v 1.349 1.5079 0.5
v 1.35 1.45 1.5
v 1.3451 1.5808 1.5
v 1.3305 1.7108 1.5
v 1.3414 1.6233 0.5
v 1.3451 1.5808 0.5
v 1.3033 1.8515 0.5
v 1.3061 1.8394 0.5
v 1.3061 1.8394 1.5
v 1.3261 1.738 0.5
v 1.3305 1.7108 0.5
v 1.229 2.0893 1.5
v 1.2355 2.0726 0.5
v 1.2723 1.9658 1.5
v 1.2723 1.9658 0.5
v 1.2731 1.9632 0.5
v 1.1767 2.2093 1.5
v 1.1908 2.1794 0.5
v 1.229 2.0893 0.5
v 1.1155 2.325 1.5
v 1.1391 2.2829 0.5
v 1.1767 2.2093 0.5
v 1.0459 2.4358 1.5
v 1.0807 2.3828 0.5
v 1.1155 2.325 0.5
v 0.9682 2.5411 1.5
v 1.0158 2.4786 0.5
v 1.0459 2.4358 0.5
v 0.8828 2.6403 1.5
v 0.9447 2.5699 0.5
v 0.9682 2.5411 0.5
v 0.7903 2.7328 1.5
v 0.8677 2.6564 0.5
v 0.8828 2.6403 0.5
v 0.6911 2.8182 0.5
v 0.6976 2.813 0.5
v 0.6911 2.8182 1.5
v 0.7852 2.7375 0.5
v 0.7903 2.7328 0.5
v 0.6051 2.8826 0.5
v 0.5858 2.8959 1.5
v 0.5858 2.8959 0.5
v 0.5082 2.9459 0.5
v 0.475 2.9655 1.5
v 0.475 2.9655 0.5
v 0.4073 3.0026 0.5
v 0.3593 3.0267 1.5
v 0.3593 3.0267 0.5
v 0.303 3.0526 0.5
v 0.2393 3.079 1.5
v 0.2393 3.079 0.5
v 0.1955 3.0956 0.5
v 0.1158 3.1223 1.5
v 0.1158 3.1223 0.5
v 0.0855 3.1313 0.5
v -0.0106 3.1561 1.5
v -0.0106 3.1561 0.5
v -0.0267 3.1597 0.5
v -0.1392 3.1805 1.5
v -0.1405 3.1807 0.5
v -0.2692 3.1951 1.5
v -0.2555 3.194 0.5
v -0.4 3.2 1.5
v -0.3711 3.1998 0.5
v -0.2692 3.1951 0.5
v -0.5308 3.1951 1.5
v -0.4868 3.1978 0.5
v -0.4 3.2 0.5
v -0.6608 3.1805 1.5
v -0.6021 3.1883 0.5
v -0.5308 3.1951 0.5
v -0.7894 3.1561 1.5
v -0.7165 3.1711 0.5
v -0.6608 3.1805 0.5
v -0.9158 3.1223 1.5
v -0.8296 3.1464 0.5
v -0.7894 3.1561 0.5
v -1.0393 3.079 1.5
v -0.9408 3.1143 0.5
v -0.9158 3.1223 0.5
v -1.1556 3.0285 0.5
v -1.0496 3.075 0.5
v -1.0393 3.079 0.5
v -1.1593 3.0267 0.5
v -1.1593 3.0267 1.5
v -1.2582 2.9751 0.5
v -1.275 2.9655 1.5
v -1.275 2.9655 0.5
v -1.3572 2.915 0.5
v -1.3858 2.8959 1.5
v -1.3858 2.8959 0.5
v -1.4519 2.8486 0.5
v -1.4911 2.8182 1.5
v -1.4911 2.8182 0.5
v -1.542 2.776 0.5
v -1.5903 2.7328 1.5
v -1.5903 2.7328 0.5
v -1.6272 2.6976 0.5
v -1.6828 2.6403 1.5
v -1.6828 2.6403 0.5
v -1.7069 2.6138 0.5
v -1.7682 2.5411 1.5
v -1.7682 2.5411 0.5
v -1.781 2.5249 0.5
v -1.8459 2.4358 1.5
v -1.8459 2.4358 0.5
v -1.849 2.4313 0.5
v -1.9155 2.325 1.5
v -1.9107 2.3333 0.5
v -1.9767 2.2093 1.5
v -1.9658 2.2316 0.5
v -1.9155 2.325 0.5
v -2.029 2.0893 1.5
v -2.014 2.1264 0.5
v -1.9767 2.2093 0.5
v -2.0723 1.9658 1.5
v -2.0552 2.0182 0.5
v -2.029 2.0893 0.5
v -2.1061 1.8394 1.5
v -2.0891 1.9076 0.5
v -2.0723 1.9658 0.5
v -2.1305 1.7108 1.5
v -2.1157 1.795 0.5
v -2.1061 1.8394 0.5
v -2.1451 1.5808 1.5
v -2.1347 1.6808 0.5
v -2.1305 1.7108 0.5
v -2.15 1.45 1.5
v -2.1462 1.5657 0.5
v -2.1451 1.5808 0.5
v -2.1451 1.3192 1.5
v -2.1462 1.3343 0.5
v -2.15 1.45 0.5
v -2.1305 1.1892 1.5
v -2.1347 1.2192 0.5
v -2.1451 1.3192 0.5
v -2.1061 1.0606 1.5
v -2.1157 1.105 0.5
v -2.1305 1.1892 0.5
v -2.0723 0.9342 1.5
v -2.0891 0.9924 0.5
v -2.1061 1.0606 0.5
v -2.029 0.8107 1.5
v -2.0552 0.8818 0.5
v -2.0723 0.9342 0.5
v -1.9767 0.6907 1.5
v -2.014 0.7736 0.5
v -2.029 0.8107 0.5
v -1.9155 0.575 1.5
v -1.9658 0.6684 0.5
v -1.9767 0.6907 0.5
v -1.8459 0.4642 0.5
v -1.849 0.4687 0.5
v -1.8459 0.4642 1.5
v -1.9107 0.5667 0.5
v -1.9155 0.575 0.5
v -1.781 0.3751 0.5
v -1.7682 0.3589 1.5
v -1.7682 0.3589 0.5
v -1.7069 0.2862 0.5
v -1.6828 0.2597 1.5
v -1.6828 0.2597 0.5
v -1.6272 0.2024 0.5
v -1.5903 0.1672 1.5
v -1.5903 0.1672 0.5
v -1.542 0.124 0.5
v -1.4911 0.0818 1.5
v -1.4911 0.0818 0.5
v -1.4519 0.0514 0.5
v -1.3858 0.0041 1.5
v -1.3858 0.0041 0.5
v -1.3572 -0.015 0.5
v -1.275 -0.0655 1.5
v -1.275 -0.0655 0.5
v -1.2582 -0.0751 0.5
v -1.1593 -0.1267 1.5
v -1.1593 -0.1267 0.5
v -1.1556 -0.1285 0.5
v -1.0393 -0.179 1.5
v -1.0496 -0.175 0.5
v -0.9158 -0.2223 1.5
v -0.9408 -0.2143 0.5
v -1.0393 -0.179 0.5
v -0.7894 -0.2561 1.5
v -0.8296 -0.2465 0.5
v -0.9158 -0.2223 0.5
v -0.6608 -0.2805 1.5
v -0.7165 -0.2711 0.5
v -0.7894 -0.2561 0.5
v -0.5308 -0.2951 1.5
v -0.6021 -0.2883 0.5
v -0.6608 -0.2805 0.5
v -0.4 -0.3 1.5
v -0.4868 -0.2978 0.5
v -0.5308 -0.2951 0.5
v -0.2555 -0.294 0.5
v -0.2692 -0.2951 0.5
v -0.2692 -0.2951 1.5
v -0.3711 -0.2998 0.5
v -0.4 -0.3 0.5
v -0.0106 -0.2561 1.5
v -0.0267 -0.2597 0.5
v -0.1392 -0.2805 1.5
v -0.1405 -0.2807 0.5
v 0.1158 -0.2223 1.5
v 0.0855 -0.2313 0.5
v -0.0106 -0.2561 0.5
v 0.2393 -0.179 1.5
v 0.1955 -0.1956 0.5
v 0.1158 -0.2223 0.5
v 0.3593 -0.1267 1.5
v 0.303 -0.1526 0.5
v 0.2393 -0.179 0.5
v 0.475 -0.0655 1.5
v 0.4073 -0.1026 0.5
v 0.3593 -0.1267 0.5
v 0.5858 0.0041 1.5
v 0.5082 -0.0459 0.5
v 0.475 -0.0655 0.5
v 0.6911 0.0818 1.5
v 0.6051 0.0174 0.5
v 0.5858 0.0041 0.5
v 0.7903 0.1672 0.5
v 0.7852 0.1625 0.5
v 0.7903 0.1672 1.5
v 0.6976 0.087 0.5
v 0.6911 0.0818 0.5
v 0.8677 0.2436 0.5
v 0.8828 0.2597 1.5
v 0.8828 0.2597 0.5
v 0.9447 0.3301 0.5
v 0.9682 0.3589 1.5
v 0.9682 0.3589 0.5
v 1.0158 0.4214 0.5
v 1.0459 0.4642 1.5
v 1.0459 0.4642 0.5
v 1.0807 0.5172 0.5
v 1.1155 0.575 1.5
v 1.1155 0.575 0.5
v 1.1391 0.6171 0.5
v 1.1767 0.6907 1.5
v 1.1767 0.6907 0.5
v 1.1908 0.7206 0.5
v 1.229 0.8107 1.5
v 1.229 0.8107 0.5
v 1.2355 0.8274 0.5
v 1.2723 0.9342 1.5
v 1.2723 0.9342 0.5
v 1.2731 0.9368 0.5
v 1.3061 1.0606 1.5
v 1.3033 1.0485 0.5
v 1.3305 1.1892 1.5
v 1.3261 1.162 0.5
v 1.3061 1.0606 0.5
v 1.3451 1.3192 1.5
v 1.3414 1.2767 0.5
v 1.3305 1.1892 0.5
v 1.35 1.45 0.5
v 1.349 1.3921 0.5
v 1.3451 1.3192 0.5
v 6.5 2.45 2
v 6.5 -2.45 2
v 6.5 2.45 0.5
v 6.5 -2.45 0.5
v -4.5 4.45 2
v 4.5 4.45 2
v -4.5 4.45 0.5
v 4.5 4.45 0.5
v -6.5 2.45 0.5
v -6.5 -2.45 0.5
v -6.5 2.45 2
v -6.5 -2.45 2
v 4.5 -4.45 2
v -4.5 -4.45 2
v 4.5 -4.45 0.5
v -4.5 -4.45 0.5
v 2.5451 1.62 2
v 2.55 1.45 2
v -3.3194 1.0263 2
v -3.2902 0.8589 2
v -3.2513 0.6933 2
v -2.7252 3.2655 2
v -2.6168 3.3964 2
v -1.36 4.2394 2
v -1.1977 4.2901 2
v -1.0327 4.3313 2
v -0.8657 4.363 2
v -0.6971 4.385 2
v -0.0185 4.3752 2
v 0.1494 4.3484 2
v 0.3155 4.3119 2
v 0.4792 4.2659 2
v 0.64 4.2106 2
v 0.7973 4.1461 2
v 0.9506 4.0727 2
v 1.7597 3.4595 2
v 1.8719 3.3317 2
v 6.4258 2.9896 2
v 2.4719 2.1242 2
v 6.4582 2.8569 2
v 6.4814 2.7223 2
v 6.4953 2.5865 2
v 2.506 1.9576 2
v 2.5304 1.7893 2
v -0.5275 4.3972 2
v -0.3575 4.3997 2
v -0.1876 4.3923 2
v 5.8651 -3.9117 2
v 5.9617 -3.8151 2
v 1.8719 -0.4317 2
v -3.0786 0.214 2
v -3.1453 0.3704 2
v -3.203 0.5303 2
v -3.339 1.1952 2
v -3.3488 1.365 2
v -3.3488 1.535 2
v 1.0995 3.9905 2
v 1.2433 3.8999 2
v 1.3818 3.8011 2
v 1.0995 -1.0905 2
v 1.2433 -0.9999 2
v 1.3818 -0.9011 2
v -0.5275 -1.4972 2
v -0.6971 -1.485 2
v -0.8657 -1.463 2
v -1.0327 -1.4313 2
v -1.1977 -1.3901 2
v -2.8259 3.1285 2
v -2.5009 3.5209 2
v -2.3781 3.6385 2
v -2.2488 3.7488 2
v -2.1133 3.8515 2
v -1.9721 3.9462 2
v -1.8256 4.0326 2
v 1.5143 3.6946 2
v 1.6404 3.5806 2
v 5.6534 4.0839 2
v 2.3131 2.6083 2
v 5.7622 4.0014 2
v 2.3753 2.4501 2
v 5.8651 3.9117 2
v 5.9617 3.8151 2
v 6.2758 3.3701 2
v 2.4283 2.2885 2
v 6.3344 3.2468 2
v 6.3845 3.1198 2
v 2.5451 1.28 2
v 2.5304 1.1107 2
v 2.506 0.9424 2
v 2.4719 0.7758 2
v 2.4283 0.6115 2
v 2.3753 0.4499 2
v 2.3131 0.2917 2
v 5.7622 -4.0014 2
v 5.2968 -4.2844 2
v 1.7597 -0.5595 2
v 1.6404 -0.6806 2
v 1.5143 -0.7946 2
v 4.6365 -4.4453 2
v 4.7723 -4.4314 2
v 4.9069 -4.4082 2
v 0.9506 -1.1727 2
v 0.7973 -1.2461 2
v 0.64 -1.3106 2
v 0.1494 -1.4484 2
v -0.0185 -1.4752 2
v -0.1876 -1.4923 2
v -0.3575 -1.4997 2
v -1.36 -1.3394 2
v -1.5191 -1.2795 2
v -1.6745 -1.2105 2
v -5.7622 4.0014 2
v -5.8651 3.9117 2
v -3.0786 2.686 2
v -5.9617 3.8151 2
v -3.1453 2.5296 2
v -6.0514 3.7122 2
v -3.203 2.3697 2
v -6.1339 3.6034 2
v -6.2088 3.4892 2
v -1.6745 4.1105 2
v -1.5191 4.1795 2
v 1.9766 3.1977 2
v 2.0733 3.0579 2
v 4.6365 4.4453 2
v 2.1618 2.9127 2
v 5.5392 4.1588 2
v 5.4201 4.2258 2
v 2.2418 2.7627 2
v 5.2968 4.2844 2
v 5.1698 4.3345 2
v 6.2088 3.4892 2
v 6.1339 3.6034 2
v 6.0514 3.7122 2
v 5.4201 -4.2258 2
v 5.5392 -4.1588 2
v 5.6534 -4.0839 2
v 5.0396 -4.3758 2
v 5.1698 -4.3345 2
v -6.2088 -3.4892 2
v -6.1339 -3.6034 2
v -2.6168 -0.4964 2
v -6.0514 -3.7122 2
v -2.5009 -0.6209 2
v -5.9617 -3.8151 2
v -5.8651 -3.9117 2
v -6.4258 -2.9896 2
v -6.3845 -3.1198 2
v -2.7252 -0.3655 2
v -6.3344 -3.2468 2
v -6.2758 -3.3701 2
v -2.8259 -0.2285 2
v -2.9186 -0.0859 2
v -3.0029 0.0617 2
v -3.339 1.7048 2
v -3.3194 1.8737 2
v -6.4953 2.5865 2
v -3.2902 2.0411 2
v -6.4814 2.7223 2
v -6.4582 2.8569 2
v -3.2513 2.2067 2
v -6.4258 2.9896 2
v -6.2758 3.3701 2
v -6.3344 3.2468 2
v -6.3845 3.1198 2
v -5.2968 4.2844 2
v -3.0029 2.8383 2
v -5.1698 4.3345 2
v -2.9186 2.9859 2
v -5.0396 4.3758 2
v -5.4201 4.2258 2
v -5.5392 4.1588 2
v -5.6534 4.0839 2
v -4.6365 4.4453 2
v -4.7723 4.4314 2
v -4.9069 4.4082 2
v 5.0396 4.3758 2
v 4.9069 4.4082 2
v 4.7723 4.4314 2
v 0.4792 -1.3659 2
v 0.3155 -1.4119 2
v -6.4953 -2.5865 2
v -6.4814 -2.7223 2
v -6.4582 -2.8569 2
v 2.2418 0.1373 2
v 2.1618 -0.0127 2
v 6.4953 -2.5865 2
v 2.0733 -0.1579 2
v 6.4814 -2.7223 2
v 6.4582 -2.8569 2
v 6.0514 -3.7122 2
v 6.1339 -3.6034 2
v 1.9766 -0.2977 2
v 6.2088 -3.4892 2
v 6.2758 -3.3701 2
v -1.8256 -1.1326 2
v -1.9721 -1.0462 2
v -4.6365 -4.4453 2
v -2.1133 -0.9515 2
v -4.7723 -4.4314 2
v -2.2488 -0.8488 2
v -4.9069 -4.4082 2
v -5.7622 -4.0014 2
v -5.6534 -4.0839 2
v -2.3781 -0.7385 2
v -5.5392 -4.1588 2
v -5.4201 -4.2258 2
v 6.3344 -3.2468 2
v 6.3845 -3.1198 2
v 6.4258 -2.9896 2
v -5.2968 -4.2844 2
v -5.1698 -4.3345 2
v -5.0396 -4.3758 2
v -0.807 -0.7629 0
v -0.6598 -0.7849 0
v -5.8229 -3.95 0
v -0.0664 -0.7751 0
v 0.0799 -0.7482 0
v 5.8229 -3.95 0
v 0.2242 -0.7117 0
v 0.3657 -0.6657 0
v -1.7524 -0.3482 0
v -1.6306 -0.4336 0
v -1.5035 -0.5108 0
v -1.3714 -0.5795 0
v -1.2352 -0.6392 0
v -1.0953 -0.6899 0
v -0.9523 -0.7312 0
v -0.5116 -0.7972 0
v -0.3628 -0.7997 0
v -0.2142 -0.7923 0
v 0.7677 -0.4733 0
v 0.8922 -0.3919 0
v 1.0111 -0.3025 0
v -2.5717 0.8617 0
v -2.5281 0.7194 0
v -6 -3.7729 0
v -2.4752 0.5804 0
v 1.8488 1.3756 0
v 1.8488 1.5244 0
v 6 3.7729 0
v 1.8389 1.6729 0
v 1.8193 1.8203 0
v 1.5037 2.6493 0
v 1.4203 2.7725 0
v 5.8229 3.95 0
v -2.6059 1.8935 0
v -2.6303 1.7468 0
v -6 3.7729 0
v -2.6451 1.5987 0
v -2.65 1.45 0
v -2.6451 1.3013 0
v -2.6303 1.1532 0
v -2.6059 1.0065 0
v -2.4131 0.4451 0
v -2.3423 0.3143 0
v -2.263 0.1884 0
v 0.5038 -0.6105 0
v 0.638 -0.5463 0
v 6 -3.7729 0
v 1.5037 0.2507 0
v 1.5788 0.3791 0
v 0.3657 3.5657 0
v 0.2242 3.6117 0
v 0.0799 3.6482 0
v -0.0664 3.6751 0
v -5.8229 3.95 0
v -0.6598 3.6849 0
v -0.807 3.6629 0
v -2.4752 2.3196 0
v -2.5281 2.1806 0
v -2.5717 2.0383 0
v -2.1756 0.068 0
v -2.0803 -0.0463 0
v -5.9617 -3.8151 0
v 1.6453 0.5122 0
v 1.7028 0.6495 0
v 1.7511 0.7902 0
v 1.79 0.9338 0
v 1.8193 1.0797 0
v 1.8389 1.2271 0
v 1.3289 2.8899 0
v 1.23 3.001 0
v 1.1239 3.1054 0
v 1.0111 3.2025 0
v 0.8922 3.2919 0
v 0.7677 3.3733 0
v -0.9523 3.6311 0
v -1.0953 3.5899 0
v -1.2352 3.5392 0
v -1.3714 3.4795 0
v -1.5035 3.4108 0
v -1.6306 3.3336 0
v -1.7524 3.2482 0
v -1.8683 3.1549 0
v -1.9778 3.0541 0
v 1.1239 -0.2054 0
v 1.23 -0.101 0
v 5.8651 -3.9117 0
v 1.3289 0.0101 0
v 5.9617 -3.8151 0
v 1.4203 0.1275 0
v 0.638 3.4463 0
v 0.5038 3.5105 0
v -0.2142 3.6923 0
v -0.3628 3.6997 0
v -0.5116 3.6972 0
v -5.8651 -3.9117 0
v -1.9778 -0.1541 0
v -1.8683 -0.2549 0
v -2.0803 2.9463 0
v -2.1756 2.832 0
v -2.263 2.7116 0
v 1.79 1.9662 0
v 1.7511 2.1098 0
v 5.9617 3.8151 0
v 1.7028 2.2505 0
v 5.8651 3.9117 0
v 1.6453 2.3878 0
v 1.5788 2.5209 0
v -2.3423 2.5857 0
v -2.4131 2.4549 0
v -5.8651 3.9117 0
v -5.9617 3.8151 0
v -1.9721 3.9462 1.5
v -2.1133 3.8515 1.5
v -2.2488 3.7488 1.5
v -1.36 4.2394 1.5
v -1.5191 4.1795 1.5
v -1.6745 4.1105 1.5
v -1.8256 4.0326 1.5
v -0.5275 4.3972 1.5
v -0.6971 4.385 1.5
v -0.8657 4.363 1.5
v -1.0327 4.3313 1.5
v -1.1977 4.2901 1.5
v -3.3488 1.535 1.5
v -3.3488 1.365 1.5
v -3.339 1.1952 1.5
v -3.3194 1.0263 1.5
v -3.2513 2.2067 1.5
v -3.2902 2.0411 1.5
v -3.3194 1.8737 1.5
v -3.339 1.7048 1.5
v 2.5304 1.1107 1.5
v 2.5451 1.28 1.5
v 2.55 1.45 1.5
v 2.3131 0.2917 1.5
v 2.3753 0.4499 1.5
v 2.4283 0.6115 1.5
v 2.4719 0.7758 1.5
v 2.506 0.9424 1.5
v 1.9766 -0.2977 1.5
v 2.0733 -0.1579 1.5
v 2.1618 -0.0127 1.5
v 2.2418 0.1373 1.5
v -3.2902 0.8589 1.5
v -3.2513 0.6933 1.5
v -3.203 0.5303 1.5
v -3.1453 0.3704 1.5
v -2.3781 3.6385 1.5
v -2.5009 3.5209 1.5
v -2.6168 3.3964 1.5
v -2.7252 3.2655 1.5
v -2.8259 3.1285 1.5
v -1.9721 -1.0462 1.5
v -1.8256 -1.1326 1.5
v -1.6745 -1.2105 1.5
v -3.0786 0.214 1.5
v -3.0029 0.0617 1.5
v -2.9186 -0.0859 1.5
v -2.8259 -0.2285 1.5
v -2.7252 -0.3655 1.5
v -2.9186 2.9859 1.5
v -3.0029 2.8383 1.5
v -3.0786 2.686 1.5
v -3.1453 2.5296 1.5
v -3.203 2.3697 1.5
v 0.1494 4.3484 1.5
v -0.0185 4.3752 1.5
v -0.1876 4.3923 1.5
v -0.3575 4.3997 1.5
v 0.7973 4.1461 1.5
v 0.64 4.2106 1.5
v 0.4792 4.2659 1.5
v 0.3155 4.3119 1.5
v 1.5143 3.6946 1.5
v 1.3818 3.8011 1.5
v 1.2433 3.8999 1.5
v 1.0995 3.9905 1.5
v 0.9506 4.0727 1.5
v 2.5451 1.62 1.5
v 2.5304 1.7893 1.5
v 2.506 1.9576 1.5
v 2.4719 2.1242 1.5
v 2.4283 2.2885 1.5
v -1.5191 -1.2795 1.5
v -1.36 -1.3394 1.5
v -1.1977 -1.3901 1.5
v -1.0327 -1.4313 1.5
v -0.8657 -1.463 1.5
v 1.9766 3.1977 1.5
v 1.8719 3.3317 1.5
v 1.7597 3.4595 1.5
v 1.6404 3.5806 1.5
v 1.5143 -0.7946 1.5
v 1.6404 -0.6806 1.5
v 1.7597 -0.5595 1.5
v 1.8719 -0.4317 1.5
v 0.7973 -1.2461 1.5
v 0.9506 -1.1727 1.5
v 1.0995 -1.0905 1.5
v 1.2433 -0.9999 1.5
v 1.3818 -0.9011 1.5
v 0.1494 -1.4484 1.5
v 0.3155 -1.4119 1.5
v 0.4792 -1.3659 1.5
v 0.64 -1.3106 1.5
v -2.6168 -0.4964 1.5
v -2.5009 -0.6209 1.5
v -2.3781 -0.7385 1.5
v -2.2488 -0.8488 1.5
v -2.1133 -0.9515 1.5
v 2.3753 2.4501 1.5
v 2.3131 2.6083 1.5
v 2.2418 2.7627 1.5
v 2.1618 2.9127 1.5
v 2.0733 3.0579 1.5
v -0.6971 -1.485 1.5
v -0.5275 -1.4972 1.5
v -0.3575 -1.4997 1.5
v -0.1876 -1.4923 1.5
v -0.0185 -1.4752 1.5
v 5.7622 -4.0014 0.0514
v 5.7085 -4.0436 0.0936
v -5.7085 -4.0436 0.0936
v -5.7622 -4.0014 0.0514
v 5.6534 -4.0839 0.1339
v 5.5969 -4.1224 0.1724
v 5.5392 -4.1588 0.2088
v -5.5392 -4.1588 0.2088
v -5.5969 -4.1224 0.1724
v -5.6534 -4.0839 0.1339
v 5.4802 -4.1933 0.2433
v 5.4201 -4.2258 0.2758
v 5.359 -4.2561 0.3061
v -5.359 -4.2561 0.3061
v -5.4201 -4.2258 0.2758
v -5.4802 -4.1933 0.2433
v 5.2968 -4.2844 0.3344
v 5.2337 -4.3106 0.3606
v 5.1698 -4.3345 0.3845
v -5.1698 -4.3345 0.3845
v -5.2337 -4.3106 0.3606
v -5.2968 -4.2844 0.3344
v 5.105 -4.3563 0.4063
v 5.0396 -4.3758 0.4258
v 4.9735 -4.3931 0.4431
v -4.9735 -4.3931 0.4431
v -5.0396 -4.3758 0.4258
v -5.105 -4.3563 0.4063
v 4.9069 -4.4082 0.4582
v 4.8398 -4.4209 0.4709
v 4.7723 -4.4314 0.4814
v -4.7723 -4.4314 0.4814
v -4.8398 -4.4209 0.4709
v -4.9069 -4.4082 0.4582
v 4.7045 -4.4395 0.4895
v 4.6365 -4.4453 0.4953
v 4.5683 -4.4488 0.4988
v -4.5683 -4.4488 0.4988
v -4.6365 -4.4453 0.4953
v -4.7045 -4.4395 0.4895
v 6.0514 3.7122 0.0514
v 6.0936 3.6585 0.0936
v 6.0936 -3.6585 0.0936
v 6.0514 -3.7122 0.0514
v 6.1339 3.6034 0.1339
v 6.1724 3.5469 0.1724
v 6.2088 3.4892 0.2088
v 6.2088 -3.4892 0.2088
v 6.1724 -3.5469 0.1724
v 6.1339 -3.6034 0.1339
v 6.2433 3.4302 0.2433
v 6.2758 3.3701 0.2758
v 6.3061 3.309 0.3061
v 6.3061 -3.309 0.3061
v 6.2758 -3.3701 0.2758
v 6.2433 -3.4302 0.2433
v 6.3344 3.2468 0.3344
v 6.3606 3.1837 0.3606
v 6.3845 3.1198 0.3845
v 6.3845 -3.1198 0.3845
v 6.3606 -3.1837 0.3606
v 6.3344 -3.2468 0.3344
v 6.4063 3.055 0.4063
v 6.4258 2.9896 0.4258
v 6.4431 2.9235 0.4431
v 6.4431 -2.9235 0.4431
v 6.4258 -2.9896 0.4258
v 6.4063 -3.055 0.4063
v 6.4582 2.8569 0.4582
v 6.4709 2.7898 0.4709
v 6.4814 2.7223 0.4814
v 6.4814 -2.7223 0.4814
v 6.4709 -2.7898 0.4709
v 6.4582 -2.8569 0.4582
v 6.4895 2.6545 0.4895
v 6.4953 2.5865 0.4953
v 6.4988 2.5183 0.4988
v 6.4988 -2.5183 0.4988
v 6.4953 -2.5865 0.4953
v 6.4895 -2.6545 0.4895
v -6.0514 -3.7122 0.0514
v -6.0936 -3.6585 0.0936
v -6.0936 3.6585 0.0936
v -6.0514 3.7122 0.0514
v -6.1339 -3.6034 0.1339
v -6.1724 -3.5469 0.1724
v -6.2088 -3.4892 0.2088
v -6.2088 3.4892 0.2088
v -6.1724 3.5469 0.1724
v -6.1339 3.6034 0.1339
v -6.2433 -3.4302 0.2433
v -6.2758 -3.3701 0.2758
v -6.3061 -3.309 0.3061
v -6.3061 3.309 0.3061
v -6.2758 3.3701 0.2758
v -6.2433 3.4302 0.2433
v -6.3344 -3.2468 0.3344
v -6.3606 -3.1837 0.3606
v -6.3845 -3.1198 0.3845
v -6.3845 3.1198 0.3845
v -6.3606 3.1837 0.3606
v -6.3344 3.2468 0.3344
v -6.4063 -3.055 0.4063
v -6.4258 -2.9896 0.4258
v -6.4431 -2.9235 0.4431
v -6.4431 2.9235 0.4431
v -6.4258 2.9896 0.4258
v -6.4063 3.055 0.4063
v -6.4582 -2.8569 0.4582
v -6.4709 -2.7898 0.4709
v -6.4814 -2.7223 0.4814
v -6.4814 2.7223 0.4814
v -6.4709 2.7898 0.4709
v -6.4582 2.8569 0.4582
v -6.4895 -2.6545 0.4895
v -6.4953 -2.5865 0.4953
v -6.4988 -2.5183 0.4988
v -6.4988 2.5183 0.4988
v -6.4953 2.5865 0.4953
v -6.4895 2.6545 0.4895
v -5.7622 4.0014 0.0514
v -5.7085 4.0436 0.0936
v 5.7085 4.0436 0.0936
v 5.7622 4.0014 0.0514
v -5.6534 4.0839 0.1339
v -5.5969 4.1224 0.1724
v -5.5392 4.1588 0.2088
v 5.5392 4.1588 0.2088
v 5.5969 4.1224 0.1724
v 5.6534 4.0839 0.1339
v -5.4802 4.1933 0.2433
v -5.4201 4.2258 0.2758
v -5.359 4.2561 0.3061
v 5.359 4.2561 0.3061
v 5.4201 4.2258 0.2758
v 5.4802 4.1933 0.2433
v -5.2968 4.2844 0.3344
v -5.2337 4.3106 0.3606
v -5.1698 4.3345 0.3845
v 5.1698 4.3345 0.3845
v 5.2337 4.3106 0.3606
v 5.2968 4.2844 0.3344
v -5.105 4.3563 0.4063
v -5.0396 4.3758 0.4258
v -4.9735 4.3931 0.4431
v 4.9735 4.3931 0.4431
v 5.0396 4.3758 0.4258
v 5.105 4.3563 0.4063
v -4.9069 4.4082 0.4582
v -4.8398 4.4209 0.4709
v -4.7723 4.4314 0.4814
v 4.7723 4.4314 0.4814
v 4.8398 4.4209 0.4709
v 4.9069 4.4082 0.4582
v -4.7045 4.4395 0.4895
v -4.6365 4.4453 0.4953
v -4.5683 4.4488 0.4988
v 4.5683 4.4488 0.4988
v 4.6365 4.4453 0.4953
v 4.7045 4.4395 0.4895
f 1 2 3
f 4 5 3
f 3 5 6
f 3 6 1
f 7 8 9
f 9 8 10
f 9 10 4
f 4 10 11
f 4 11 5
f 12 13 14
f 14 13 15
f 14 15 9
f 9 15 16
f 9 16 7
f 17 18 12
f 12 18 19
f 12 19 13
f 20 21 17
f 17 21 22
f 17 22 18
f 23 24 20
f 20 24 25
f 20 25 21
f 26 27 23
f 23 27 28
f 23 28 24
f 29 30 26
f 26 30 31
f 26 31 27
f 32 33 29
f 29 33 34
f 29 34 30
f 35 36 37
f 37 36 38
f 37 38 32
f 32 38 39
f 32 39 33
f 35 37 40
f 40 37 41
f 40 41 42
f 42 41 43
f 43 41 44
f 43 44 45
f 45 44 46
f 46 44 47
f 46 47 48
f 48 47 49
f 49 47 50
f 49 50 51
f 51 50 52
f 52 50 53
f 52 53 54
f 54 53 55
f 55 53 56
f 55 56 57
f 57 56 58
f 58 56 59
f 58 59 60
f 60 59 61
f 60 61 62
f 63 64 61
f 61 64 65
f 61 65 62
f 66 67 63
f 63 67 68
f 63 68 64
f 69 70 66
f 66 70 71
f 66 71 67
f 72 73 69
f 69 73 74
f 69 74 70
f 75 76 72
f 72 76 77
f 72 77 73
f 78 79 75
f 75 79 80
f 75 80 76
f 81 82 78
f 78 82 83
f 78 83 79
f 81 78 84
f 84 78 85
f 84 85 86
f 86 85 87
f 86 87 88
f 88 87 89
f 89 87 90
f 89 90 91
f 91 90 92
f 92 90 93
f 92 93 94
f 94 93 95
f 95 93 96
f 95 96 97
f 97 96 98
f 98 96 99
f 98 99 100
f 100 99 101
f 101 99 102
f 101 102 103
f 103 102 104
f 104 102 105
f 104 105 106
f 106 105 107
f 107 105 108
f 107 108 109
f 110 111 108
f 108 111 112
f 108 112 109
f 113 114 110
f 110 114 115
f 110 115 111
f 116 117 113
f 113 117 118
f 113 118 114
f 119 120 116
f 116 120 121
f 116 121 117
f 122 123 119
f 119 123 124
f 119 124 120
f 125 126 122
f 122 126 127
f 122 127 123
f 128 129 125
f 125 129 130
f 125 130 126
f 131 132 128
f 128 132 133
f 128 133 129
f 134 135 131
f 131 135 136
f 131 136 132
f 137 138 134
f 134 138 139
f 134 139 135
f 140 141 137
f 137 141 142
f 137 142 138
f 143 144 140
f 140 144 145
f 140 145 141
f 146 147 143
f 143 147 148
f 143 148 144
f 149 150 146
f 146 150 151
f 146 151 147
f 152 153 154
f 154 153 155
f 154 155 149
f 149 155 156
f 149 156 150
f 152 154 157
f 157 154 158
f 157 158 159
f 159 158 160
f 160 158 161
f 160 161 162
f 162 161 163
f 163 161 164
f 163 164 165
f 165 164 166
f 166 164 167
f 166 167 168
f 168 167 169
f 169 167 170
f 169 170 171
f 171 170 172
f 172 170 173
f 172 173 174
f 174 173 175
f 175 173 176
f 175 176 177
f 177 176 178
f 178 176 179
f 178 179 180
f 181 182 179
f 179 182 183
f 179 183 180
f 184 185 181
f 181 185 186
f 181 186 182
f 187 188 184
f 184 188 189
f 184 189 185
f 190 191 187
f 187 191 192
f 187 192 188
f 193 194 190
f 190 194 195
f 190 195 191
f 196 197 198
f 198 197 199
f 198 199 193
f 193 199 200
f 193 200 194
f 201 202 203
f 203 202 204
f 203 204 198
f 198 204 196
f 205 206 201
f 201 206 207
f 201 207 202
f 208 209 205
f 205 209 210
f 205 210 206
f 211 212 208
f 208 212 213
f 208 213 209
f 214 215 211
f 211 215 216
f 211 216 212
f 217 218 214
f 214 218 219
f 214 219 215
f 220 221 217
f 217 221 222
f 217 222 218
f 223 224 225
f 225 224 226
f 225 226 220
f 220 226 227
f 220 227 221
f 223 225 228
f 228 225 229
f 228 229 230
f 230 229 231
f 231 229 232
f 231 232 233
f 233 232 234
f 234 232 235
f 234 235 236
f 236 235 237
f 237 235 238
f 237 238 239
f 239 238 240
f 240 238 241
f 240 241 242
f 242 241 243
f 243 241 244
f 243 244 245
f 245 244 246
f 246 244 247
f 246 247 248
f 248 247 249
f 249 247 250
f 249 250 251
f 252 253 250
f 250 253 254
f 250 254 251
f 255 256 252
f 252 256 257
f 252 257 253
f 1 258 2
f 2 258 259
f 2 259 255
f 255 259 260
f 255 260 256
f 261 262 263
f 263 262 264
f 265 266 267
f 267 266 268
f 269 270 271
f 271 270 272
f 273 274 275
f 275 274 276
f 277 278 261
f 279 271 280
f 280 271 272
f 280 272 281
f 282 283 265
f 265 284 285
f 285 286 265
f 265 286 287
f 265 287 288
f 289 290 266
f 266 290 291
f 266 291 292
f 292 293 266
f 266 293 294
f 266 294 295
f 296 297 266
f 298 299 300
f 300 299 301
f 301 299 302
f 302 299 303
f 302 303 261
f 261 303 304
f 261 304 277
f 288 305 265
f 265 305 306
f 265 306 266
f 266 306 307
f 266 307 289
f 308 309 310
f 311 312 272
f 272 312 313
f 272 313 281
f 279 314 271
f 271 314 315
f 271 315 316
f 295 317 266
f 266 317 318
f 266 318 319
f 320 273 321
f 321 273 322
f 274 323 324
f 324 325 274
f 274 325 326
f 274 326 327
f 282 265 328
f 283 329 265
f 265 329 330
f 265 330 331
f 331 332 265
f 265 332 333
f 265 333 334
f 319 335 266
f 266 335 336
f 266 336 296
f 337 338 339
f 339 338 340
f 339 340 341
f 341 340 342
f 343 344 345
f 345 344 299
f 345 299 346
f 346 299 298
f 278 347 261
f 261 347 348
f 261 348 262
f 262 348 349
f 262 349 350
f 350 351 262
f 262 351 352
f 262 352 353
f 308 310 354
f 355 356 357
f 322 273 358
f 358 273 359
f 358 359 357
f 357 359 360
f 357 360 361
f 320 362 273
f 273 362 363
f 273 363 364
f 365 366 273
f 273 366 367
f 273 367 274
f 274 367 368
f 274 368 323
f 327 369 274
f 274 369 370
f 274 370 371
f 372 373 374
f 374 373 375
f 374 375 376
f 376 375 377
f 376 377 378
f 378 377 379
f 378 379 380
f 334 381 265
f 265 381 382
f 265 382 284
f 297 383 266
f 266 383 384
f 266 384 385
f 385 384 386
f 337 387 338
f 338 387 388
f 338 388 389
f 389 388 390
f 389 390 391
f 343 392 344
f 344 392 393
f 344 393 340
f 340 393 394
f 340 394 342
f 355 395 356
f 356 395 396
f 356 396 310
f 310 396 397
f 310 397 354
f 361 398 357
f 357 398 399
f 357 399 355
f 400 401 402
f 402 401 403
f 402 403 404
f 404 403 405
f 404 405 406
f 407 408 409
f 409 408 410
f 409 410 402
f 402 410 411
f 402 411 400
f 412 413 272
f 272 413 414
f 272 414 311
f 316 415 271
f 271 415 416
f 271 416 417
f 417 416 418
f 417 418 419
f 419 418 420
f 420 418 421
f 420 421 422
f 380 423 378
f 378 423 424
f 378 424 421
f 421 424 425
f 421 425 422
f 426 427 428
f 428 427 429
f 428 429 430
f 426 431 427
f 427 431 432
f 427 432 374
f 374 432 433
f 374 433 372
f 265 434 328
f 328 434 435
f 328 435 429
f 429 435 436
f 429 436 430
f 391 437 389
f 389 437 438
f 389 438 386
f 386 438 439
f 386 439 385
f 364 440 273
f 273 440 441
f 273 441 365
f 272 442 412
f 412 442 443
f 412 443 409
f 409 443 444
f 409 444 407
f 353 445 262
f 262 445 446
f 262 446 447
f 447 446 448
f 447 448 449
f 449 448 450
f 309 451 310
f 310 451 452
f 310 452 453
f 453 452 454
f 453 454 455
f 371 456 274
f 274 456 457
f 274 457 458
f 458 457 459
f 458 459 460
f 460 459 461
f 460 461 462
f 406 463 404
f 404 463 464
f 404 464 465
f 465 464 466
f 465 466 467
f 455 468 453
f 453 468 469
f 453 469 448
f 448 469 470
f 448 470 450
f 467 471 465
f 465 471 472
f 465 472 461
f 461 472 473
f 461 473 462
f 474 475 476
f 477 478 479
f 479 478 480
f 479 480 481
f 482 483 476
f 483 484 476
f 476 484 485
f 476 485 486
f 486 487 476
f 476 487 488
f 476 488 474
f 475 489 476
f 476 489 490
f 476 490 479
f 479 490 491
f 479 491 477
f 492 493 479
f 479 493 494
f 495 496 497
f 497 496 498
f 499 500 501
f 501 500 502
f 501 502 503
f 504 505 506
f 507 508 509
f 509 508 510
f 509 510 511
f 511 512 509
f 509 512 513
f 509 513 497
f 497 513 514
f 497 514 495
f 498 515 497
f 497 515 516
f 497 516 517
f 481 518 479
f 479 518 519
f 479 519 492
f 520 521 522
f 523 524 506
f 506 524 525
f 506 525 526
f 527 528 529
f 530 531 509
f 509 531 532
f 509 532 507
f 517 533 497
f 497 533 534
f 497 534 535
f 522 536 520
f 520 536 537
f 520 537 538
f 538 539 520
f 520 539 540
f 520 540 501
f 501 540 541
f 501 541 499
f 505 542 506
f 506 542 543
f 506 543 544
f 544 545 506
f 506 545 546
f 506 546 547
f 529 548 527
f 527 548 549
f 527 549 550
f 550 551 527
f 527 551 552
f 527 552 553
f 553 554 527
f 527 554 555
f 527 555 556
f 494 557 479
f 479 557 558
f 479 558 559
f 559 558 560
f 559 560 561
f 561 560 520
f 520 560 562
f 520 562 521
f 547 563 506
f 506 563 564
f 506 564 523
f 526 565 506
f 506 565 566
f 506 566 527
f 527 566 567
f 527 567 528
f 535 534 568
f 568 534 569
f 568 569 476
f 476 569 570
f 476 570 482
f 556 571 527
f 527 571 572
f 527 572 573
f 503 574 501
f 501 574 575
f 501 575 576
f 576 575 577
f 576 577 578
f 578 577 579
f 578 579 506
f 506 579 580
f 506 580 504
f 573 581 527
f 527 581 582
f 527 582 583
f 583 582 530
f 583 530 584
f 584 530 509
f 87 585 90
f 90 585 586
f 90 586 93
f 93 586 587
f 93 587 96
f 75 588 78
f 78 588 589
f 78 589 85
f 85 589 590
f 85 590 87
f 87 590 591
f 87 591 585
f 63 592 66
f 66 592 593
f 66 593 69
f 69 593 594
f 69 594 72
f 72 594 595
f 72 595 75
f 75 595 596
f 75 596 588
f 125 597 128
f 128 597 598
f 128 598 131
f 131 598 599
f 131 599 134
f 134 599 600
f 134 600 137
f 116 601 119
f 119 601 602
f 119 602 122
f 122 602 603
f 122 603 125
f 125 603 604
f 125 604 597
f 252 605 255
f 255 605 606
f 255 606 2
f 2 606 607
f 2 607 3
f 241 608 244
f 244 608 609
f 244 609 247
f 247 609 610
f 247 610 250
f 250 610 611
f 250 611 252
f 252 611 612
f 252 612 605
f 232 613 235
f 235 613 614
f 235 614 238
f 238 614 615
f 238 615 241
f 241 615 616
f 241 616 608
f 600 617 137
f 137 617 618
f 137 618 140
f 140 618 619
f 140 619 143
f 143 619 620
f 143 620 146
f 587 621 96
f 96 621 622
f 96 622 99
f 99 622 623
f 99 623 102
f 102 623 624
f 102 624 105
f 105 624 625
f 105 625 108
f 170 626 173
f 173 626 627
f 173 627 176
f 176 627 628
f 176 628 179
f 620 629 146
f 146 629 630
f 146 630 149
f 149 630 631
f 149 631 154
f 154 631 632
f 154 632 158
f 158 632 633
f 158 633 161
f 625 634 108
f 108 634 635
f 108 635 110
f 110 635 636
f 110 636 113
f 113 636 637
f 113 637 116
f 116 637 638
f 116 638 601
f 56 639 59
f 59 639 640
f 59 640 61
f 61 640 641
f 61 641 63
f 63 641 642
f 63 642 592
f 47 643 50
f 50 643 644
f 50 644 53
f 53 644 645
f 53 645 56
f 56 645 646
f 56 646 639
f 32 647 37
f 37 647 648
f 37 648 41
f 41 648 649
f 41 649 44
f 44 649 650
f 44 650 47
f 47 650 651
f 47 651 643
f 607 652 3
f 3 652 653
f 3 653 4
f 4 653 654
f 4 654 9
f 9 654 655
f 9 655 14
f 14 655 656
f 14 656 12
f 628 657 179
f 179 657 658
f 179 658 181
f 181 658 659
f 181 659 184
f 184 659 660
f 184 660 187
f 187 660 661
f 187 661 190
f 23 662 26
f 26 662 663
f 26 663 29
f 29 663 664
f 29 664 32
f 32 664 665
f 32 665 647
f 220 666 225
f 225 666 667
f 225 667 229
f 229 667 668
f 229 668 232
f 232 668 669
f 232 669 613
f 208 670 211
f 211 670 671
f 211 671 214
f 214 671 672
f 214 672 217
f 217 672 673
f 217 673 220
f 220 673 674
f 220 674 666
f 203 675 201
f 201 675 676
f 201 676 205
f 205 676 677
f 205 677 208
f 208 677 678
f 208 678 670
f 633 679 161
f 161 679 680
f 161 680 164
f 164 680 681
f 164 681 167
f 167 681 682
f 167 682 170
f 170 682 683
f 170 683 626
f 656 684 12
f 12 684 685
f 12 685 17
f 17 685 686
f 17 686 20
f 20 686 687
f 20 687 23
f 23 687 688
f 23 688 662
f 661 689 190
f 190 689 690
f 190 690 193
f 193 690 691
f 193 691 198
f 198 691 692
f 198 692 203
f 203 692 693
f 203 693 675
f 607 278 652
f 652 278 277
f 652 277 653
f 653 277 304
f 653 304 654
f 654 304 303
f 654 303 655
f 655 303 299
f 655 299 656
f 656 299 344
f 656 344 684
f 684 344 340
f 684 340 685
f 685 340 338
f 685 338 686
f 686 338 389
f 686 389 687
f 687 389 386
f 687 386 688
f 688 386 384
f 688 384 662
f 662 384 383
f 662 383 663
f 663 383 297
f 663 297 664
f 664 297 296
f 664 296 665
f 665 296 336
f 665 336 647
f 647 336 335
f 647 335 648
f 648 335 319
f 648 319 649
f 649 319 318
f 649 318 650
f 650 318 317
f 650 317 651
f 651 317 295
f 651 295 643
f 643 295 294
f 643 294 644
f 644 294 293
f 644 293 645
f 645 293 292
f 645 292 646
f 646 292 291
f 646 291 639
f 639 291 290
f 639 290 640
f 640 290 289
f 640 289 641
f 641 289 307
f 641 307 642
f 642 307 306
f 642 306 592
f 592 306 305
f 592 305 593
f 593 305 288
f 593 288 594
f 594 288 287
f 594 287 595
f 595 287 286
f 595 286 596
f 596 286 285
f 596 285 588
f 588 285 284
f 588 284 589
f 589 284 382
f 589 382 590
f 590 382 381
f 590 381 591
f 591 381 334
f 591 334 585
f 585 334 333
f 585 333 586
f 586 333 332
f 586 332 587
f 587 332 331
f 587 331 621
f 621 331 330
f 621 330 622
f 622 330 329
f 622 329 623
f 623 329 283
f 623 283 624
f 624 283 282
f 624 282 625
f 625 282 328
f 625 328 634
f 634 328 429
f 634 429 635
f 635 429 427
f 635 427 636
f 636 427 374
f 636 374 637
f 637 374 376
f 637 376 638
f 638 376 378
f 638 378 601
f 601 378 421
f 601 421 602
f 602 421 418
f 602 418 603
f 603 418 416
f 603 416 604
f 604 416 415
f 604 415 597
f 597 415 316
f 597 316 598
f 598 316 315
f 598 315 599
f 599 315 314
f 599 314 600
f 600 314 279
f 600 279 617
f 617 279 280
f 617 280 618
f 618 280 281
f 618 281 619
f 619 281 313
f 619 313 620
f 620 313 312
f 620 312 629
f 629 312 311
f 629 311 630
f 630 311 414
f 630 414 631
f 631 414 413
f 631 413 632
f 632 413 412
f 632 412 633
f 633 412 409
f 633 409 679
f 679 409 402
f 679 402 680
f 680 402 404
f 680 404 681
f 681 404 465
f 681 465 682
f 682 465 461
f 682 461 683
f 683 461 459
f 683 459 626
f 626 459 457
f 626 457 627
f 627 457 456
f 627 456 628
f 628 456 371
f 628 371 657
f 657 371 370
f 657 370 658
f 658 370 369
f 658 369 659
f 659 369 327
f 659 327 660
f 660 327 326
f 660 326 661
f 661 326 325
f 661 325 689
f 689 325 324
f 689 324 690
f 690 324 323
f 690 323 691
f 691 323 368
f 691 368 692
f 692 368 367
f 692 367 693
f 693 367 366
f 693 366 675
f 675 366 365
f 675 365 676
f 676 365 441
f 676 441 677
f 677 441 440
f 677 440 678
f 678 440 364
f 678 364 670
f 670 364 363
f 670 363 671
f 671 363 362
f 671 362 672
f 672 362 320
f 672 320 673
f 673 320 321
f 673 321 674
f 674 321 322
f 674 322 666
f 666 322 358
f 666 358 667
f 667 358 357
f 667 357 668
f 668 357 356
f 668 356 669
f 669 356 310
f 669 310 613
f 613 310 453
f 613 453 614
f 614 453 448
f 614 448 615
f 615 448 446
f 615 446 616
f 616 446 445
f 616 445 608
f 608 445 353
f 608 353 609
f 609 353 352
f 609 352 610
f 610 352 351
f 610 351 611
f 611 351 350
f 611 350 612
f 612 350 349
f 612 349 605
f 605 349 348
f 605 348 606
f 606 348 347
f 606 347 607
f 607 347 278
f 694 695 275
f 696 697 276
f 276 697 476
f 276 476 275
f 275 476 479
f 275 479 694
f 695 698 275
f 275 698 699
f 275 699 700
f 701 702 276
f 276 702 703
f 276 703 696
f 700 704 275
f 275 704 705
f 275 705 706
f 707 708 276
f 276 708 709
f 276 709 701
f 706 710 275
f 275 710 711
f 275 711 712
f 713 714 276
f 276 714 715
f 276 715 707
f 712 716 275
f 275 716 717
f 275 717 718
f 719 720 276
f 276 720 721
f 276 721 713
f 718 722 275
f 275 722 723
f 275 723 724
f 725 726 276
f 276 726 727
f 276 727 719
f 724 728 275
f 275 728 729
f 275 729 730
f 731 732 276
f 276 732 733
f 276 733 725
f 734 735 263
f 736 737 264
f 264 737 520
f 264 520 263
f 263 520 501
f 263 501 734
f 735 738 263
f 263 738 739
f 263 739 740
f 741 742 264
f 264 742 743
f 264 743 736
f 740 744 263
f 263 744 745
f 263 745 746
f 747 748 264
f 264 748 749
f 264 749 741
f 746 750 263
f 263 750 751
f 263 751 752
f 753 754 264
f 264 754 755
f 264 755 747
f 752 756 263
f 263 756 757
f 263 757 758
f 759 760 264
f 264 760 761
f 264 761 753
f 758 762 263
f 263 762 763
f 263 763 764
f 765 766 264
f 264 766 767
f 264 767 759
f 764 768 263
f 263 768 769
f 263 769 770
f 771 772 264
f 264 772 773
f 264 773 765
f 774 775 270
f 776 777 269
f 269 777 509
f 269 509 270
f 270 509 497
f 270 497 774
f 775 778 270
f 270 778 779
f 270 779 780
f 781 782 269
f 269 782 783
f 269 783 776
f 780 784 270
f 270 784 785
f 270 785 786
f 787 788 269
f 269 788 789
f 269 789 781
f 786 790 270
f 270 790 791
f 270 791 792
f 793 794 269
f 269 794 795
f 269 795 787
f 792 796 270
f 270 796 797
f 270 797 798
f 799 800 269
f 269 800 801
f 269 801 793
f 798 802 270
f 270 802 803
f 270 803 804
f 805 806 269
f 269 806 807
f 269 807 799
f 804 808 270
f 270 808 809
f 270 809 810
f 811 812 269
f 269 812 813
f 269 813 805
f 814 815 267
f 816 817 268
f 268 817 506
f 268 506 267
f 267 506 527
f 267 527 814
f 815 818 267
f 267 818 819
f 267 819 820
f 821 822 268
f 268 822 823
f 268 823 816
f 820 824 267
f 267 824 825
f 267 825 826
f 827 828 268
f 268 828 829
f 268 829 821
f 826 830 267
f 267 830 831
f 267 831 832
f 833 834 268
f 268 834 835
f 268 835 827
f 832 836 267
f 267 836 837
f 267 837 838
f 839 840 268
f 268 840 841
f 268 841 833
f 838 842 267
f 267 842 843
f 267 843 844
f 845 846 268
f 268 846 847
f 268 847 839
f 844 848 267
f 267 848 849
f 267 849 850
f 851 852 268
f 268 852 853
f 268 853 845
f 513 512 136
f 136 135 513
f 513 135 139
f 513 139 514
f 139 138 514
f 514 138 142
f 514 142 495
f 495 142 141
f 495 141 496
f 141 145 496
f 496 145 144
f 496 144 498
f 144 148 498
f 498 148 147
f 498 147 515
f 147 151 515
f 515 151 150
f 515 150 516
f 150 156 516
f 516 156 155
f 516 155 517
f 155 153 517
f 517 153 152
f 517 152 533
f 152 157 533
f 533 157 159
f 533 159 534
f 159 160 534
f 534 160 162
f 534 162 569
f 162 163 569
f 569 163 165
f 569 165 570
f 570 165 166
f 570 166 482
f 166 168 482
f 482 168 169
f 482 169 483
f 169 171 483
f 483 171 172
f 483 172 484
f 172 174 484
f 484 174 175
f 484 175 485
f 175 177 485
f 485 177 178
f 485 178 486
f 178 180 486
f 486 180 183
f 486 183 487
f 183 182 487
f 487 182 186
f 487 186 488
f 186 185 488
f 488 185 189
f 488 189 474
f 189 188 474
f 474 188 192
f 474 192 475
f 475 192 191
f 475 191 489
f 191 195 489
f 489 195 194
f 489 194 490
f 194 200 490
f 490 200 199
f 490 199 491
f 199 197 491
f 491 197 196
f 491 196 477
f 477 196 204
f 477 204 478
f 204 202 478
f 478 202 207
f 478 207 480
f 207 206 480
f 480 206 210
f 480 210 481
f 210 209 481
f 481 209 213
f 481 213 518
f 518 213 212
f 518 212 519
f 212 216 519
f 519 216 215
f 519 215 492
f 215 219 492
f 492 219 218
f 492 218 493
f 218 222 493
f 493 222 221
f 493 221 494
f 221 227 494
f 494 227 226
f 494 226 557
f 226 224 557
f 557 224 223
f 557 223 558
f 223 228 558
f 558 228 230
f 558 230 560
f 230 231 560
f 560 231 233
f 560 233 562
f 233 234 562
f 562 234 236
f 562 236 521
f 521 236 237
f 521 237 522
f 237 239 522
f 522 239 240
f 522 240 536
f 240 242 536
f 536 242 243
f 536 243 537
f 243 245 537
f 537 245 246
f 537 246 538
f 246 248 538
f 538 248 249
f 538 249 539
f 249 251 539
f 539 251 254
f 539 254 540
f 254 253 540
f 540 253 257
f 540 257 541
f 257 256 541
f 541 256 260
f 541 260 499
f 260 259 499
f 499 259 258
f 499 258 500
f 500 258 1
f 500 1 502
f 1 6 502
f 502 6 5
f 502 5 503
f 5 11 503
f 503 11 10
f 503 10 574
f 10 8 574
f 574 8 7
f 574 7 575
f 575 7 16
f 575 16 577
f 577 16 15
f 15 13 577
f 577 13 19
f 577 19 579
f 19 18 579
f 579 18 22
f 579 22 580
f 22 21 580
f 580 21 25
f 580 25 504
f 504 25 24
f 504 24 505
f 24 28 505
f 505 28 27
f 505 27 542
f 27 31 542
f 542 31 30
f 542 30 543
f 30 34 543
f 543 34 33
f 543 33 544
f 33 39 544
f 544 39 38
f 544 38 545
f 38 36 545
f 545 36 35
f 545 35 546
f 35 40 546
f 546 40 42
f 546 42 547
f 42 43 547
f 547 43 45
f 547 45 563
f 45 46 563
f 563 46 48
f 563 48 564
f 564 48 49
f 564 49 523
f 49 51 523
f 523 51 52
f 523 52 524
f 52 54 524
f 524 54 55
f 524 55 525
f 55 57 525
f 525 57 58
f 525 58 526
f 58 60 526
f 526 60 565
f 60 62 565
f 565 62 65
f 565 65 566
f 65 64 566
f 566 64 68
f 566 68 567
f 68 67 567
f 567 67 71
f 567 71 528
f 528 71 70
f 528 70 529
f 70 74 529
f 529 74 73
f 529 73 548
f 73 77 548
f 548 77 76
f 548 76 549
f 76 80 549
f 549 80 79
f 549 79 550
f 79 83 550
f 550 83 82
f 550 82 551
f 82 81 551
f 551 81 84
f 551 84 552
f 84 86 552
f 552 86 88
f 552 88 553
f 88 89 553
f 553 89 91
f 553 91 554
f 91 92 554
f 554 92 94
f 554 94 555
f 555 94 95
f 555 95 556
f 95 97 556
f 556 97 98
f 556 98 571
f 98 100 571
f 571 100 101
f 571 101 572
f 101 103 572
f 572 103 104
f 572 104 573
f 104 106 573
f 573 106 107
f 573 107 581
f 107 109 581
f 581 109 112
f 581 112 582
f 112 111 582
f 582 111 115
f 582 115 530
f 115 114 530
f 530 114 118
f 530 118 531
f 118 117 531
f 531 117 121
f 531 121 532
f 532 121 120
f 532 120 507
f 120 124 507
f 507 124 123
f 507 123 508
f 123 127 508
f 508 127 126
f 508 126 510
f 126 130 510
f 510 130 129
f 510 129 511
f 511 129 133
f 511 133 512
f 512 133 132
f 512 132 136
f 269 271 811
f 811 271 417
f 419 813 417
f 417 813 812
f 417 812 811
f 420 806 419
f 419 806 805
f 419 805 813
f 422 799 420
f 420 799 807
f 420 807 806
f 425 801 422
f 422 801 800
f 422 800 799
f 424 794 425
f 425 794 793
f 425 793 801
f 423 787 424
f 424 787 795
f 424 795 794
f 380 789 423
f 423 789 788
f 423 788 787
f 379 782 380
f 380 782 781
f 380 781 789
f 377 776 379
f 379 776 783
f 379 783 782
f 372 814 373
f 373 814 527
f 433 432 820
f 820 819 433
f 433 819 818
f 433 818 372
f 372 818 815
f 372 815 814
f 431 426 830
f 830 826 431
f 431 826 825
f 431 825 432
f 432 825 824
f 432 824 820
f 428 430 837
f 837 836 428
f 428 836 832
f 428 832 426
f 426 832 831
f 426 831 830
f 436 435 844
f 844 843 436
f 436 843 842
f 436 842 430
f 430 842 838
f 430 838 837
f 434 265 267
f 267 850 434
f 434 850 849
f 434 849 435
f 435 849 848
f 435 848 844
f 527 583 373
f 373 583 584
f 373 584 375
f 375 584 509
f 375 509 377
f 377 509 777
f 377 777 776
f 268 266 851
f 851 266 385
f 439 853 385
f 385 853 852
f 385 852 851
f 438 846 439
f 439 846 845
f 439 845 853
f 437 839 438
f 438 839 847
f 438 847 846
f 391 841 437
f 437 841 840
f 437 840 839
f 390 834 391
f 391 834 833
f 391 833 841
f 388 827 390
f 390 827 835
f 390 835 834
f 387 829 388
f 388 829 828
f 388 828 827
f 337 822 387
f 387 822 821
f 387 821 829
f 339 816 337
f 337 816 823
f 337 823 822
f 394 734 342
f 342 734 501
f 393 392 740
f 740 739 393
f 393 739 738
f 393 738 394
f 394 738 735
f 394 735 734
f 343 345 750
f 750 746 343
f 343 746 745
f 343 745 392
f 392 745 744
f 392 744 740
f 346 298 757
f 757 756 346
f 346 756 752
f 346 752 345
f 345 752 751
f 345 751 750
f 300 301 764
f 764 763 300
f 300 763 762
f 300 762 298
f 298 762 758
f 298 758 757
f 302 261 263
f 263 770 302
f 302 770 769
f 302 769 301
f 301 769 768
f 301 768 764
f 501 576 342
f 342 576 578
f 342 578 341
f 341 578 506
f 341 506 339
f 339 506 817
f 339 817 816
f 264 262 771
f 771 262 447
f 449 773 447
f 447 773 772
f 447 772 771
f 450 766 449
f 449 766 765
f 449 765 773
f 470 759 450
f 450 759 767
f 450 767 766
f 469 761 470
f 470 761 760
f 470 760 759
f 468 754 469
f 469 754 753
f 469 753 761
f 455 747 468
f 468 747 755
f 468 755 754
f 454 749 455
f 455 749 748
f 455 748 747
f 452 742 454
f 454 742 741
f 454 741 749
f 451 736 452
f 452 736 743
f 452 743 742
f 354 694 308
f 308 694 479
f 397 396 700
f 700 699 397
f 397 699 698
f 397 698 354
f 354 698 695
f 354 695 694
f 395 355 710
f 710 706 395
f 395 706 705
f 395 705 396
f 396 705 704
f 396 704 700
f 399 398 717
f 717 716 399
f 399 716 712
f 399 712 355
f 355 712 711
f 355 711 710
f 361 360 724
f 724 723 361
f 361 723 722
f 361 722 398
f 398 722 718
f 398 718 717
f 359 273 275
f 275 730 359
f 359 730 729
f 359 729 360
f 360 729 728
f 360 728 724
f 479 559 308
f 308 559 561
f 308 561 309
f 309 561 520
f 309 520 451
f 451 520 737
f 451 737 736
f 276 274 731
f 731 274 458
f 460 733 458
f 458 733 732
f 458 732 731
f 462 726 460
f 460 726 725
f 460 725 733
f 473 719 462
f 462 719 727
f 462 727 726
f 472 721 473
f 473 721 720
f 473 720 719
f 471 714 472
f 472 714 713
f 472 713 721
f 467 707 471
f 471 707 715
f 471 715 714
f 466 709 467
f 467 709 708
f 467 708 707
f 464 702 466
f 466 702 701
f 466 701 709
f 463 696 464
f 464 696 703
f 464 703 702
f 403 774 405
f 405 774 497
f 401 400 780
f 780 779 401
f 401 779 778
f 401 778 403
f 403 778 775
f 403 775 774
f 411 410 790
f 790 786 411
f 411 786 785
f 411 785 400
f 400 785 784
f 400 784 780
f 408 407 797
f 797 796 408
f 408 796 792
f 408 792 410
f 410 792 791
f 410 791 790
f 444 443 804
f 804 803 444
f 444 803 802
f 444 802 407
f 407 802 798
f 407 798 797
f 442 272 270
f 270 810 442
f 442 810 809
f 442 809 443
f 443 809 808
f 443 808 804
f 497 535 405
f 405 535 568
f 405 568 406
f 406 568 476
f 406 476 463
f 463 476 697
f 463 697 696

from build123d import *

# Parameters (mm, degrees)
SKETCH1_W           = 13
SKETCH1_H           = 8.9
BOSS_EXTRUDE1_DEPTH = 2
SKETCH2_R           = 1.75
CUT_EXTRUDE4_DEPTH  = 9.127268914
SKETCH3_R           = 2.95
CUT_EXTRUDE9_DEPTH  = 0.5
CHAMFER1_SIZE       = 0.5
FILLET2_R           = 2


with BuildPart() as part:
    # Sketch1 → Boss-Extrude1 (new body)
    with BuildSketch(Plane.XY):
        Rectangle(SKETCH1_W, SKETCH1_H)
    extrude(amount=BOSS_EXTRUDE1_DEPTH)

    # Sketch2 → Cut-Extrude4 (cut, through all)
    with BuildSketch(Plane.XY.offset(2)):
        with Locations((-0.4, 1.45)):
            Circle(SKETCH2_R)
    extrude(amount=-CUT_EXTRUDE4_DEPTH, mode=Mode.SUBTRACT)

    # Sketch3 → Cut-Extrude9 (cut)
    with BuildSketch(Plane.XY.offset(2)):
        with Locations((-0.4, 1.45)):
            Circle(SKETCH3_R)
    extrude(amount=-CUT_EXTRUDE9_DEPTH, mode=Mode.SUBTRACT)

    # Chamfer1
    chamfer1_edges = [part.edges().sort_by_distance(p)[0] for p in [
        (-2.15, 1.45, 0),
        (0, -4.45, 0),
        (-6.5, 0, 0),
        (0, 4.45, 0),
        (6.5, 0, 0),
    ]]
    chamfer(chamfer1_edges, length=CHAMFER1_SIZE)

    # Fillet2
    # the kernel refuses this fillet: 2 mm, written as the material it takes off along each edge
    with BuildSketch(Plane(origin=(-6.5, 4.45, -4.5), x_dir=(0, -1, 0), z_dir=(0, 0, 1)), Plane(origin=(-6.5, -4.45, -4.5), x_dir=(1, 0, 0), z_dir=(0, 0, 1))) as fillet2_piece_1:
        with BuildLine():
            CenterArc((FILLET2_R, FILLET2_R), FILLET2_R, 180, 90)
            Line((0, FILLET2_R), (0, 0))
            Line((0, 0), (FILLET2_R, 0))
        make_face()
    extrude(amount=11.5, mode=Mode.SUBTRACT)
    with BuildSketch(Plane(origin=(6.5, 4.45, -4.5), x_dir=(0, -1, 0), z_dir=(0, 0, 1)), Plane(origin=(6.5, -4.45, -4.5), x_dir=(-1, 0, 0), z_dir=(0, 0, 1))) as fillet2_piece_2:
        with BuildLine():
            CenterArc((FILLET2_R, -FILLET2_R), FILLET2_R, 90, 90)
            Line((0, -FILLET2_R), (0, 0))
            Line((0, 0), (FILLET2_R, 0))
        make_face()
    extrude(amount=11.5, mode=Mode.SUBTRACT)


solid = part.part
